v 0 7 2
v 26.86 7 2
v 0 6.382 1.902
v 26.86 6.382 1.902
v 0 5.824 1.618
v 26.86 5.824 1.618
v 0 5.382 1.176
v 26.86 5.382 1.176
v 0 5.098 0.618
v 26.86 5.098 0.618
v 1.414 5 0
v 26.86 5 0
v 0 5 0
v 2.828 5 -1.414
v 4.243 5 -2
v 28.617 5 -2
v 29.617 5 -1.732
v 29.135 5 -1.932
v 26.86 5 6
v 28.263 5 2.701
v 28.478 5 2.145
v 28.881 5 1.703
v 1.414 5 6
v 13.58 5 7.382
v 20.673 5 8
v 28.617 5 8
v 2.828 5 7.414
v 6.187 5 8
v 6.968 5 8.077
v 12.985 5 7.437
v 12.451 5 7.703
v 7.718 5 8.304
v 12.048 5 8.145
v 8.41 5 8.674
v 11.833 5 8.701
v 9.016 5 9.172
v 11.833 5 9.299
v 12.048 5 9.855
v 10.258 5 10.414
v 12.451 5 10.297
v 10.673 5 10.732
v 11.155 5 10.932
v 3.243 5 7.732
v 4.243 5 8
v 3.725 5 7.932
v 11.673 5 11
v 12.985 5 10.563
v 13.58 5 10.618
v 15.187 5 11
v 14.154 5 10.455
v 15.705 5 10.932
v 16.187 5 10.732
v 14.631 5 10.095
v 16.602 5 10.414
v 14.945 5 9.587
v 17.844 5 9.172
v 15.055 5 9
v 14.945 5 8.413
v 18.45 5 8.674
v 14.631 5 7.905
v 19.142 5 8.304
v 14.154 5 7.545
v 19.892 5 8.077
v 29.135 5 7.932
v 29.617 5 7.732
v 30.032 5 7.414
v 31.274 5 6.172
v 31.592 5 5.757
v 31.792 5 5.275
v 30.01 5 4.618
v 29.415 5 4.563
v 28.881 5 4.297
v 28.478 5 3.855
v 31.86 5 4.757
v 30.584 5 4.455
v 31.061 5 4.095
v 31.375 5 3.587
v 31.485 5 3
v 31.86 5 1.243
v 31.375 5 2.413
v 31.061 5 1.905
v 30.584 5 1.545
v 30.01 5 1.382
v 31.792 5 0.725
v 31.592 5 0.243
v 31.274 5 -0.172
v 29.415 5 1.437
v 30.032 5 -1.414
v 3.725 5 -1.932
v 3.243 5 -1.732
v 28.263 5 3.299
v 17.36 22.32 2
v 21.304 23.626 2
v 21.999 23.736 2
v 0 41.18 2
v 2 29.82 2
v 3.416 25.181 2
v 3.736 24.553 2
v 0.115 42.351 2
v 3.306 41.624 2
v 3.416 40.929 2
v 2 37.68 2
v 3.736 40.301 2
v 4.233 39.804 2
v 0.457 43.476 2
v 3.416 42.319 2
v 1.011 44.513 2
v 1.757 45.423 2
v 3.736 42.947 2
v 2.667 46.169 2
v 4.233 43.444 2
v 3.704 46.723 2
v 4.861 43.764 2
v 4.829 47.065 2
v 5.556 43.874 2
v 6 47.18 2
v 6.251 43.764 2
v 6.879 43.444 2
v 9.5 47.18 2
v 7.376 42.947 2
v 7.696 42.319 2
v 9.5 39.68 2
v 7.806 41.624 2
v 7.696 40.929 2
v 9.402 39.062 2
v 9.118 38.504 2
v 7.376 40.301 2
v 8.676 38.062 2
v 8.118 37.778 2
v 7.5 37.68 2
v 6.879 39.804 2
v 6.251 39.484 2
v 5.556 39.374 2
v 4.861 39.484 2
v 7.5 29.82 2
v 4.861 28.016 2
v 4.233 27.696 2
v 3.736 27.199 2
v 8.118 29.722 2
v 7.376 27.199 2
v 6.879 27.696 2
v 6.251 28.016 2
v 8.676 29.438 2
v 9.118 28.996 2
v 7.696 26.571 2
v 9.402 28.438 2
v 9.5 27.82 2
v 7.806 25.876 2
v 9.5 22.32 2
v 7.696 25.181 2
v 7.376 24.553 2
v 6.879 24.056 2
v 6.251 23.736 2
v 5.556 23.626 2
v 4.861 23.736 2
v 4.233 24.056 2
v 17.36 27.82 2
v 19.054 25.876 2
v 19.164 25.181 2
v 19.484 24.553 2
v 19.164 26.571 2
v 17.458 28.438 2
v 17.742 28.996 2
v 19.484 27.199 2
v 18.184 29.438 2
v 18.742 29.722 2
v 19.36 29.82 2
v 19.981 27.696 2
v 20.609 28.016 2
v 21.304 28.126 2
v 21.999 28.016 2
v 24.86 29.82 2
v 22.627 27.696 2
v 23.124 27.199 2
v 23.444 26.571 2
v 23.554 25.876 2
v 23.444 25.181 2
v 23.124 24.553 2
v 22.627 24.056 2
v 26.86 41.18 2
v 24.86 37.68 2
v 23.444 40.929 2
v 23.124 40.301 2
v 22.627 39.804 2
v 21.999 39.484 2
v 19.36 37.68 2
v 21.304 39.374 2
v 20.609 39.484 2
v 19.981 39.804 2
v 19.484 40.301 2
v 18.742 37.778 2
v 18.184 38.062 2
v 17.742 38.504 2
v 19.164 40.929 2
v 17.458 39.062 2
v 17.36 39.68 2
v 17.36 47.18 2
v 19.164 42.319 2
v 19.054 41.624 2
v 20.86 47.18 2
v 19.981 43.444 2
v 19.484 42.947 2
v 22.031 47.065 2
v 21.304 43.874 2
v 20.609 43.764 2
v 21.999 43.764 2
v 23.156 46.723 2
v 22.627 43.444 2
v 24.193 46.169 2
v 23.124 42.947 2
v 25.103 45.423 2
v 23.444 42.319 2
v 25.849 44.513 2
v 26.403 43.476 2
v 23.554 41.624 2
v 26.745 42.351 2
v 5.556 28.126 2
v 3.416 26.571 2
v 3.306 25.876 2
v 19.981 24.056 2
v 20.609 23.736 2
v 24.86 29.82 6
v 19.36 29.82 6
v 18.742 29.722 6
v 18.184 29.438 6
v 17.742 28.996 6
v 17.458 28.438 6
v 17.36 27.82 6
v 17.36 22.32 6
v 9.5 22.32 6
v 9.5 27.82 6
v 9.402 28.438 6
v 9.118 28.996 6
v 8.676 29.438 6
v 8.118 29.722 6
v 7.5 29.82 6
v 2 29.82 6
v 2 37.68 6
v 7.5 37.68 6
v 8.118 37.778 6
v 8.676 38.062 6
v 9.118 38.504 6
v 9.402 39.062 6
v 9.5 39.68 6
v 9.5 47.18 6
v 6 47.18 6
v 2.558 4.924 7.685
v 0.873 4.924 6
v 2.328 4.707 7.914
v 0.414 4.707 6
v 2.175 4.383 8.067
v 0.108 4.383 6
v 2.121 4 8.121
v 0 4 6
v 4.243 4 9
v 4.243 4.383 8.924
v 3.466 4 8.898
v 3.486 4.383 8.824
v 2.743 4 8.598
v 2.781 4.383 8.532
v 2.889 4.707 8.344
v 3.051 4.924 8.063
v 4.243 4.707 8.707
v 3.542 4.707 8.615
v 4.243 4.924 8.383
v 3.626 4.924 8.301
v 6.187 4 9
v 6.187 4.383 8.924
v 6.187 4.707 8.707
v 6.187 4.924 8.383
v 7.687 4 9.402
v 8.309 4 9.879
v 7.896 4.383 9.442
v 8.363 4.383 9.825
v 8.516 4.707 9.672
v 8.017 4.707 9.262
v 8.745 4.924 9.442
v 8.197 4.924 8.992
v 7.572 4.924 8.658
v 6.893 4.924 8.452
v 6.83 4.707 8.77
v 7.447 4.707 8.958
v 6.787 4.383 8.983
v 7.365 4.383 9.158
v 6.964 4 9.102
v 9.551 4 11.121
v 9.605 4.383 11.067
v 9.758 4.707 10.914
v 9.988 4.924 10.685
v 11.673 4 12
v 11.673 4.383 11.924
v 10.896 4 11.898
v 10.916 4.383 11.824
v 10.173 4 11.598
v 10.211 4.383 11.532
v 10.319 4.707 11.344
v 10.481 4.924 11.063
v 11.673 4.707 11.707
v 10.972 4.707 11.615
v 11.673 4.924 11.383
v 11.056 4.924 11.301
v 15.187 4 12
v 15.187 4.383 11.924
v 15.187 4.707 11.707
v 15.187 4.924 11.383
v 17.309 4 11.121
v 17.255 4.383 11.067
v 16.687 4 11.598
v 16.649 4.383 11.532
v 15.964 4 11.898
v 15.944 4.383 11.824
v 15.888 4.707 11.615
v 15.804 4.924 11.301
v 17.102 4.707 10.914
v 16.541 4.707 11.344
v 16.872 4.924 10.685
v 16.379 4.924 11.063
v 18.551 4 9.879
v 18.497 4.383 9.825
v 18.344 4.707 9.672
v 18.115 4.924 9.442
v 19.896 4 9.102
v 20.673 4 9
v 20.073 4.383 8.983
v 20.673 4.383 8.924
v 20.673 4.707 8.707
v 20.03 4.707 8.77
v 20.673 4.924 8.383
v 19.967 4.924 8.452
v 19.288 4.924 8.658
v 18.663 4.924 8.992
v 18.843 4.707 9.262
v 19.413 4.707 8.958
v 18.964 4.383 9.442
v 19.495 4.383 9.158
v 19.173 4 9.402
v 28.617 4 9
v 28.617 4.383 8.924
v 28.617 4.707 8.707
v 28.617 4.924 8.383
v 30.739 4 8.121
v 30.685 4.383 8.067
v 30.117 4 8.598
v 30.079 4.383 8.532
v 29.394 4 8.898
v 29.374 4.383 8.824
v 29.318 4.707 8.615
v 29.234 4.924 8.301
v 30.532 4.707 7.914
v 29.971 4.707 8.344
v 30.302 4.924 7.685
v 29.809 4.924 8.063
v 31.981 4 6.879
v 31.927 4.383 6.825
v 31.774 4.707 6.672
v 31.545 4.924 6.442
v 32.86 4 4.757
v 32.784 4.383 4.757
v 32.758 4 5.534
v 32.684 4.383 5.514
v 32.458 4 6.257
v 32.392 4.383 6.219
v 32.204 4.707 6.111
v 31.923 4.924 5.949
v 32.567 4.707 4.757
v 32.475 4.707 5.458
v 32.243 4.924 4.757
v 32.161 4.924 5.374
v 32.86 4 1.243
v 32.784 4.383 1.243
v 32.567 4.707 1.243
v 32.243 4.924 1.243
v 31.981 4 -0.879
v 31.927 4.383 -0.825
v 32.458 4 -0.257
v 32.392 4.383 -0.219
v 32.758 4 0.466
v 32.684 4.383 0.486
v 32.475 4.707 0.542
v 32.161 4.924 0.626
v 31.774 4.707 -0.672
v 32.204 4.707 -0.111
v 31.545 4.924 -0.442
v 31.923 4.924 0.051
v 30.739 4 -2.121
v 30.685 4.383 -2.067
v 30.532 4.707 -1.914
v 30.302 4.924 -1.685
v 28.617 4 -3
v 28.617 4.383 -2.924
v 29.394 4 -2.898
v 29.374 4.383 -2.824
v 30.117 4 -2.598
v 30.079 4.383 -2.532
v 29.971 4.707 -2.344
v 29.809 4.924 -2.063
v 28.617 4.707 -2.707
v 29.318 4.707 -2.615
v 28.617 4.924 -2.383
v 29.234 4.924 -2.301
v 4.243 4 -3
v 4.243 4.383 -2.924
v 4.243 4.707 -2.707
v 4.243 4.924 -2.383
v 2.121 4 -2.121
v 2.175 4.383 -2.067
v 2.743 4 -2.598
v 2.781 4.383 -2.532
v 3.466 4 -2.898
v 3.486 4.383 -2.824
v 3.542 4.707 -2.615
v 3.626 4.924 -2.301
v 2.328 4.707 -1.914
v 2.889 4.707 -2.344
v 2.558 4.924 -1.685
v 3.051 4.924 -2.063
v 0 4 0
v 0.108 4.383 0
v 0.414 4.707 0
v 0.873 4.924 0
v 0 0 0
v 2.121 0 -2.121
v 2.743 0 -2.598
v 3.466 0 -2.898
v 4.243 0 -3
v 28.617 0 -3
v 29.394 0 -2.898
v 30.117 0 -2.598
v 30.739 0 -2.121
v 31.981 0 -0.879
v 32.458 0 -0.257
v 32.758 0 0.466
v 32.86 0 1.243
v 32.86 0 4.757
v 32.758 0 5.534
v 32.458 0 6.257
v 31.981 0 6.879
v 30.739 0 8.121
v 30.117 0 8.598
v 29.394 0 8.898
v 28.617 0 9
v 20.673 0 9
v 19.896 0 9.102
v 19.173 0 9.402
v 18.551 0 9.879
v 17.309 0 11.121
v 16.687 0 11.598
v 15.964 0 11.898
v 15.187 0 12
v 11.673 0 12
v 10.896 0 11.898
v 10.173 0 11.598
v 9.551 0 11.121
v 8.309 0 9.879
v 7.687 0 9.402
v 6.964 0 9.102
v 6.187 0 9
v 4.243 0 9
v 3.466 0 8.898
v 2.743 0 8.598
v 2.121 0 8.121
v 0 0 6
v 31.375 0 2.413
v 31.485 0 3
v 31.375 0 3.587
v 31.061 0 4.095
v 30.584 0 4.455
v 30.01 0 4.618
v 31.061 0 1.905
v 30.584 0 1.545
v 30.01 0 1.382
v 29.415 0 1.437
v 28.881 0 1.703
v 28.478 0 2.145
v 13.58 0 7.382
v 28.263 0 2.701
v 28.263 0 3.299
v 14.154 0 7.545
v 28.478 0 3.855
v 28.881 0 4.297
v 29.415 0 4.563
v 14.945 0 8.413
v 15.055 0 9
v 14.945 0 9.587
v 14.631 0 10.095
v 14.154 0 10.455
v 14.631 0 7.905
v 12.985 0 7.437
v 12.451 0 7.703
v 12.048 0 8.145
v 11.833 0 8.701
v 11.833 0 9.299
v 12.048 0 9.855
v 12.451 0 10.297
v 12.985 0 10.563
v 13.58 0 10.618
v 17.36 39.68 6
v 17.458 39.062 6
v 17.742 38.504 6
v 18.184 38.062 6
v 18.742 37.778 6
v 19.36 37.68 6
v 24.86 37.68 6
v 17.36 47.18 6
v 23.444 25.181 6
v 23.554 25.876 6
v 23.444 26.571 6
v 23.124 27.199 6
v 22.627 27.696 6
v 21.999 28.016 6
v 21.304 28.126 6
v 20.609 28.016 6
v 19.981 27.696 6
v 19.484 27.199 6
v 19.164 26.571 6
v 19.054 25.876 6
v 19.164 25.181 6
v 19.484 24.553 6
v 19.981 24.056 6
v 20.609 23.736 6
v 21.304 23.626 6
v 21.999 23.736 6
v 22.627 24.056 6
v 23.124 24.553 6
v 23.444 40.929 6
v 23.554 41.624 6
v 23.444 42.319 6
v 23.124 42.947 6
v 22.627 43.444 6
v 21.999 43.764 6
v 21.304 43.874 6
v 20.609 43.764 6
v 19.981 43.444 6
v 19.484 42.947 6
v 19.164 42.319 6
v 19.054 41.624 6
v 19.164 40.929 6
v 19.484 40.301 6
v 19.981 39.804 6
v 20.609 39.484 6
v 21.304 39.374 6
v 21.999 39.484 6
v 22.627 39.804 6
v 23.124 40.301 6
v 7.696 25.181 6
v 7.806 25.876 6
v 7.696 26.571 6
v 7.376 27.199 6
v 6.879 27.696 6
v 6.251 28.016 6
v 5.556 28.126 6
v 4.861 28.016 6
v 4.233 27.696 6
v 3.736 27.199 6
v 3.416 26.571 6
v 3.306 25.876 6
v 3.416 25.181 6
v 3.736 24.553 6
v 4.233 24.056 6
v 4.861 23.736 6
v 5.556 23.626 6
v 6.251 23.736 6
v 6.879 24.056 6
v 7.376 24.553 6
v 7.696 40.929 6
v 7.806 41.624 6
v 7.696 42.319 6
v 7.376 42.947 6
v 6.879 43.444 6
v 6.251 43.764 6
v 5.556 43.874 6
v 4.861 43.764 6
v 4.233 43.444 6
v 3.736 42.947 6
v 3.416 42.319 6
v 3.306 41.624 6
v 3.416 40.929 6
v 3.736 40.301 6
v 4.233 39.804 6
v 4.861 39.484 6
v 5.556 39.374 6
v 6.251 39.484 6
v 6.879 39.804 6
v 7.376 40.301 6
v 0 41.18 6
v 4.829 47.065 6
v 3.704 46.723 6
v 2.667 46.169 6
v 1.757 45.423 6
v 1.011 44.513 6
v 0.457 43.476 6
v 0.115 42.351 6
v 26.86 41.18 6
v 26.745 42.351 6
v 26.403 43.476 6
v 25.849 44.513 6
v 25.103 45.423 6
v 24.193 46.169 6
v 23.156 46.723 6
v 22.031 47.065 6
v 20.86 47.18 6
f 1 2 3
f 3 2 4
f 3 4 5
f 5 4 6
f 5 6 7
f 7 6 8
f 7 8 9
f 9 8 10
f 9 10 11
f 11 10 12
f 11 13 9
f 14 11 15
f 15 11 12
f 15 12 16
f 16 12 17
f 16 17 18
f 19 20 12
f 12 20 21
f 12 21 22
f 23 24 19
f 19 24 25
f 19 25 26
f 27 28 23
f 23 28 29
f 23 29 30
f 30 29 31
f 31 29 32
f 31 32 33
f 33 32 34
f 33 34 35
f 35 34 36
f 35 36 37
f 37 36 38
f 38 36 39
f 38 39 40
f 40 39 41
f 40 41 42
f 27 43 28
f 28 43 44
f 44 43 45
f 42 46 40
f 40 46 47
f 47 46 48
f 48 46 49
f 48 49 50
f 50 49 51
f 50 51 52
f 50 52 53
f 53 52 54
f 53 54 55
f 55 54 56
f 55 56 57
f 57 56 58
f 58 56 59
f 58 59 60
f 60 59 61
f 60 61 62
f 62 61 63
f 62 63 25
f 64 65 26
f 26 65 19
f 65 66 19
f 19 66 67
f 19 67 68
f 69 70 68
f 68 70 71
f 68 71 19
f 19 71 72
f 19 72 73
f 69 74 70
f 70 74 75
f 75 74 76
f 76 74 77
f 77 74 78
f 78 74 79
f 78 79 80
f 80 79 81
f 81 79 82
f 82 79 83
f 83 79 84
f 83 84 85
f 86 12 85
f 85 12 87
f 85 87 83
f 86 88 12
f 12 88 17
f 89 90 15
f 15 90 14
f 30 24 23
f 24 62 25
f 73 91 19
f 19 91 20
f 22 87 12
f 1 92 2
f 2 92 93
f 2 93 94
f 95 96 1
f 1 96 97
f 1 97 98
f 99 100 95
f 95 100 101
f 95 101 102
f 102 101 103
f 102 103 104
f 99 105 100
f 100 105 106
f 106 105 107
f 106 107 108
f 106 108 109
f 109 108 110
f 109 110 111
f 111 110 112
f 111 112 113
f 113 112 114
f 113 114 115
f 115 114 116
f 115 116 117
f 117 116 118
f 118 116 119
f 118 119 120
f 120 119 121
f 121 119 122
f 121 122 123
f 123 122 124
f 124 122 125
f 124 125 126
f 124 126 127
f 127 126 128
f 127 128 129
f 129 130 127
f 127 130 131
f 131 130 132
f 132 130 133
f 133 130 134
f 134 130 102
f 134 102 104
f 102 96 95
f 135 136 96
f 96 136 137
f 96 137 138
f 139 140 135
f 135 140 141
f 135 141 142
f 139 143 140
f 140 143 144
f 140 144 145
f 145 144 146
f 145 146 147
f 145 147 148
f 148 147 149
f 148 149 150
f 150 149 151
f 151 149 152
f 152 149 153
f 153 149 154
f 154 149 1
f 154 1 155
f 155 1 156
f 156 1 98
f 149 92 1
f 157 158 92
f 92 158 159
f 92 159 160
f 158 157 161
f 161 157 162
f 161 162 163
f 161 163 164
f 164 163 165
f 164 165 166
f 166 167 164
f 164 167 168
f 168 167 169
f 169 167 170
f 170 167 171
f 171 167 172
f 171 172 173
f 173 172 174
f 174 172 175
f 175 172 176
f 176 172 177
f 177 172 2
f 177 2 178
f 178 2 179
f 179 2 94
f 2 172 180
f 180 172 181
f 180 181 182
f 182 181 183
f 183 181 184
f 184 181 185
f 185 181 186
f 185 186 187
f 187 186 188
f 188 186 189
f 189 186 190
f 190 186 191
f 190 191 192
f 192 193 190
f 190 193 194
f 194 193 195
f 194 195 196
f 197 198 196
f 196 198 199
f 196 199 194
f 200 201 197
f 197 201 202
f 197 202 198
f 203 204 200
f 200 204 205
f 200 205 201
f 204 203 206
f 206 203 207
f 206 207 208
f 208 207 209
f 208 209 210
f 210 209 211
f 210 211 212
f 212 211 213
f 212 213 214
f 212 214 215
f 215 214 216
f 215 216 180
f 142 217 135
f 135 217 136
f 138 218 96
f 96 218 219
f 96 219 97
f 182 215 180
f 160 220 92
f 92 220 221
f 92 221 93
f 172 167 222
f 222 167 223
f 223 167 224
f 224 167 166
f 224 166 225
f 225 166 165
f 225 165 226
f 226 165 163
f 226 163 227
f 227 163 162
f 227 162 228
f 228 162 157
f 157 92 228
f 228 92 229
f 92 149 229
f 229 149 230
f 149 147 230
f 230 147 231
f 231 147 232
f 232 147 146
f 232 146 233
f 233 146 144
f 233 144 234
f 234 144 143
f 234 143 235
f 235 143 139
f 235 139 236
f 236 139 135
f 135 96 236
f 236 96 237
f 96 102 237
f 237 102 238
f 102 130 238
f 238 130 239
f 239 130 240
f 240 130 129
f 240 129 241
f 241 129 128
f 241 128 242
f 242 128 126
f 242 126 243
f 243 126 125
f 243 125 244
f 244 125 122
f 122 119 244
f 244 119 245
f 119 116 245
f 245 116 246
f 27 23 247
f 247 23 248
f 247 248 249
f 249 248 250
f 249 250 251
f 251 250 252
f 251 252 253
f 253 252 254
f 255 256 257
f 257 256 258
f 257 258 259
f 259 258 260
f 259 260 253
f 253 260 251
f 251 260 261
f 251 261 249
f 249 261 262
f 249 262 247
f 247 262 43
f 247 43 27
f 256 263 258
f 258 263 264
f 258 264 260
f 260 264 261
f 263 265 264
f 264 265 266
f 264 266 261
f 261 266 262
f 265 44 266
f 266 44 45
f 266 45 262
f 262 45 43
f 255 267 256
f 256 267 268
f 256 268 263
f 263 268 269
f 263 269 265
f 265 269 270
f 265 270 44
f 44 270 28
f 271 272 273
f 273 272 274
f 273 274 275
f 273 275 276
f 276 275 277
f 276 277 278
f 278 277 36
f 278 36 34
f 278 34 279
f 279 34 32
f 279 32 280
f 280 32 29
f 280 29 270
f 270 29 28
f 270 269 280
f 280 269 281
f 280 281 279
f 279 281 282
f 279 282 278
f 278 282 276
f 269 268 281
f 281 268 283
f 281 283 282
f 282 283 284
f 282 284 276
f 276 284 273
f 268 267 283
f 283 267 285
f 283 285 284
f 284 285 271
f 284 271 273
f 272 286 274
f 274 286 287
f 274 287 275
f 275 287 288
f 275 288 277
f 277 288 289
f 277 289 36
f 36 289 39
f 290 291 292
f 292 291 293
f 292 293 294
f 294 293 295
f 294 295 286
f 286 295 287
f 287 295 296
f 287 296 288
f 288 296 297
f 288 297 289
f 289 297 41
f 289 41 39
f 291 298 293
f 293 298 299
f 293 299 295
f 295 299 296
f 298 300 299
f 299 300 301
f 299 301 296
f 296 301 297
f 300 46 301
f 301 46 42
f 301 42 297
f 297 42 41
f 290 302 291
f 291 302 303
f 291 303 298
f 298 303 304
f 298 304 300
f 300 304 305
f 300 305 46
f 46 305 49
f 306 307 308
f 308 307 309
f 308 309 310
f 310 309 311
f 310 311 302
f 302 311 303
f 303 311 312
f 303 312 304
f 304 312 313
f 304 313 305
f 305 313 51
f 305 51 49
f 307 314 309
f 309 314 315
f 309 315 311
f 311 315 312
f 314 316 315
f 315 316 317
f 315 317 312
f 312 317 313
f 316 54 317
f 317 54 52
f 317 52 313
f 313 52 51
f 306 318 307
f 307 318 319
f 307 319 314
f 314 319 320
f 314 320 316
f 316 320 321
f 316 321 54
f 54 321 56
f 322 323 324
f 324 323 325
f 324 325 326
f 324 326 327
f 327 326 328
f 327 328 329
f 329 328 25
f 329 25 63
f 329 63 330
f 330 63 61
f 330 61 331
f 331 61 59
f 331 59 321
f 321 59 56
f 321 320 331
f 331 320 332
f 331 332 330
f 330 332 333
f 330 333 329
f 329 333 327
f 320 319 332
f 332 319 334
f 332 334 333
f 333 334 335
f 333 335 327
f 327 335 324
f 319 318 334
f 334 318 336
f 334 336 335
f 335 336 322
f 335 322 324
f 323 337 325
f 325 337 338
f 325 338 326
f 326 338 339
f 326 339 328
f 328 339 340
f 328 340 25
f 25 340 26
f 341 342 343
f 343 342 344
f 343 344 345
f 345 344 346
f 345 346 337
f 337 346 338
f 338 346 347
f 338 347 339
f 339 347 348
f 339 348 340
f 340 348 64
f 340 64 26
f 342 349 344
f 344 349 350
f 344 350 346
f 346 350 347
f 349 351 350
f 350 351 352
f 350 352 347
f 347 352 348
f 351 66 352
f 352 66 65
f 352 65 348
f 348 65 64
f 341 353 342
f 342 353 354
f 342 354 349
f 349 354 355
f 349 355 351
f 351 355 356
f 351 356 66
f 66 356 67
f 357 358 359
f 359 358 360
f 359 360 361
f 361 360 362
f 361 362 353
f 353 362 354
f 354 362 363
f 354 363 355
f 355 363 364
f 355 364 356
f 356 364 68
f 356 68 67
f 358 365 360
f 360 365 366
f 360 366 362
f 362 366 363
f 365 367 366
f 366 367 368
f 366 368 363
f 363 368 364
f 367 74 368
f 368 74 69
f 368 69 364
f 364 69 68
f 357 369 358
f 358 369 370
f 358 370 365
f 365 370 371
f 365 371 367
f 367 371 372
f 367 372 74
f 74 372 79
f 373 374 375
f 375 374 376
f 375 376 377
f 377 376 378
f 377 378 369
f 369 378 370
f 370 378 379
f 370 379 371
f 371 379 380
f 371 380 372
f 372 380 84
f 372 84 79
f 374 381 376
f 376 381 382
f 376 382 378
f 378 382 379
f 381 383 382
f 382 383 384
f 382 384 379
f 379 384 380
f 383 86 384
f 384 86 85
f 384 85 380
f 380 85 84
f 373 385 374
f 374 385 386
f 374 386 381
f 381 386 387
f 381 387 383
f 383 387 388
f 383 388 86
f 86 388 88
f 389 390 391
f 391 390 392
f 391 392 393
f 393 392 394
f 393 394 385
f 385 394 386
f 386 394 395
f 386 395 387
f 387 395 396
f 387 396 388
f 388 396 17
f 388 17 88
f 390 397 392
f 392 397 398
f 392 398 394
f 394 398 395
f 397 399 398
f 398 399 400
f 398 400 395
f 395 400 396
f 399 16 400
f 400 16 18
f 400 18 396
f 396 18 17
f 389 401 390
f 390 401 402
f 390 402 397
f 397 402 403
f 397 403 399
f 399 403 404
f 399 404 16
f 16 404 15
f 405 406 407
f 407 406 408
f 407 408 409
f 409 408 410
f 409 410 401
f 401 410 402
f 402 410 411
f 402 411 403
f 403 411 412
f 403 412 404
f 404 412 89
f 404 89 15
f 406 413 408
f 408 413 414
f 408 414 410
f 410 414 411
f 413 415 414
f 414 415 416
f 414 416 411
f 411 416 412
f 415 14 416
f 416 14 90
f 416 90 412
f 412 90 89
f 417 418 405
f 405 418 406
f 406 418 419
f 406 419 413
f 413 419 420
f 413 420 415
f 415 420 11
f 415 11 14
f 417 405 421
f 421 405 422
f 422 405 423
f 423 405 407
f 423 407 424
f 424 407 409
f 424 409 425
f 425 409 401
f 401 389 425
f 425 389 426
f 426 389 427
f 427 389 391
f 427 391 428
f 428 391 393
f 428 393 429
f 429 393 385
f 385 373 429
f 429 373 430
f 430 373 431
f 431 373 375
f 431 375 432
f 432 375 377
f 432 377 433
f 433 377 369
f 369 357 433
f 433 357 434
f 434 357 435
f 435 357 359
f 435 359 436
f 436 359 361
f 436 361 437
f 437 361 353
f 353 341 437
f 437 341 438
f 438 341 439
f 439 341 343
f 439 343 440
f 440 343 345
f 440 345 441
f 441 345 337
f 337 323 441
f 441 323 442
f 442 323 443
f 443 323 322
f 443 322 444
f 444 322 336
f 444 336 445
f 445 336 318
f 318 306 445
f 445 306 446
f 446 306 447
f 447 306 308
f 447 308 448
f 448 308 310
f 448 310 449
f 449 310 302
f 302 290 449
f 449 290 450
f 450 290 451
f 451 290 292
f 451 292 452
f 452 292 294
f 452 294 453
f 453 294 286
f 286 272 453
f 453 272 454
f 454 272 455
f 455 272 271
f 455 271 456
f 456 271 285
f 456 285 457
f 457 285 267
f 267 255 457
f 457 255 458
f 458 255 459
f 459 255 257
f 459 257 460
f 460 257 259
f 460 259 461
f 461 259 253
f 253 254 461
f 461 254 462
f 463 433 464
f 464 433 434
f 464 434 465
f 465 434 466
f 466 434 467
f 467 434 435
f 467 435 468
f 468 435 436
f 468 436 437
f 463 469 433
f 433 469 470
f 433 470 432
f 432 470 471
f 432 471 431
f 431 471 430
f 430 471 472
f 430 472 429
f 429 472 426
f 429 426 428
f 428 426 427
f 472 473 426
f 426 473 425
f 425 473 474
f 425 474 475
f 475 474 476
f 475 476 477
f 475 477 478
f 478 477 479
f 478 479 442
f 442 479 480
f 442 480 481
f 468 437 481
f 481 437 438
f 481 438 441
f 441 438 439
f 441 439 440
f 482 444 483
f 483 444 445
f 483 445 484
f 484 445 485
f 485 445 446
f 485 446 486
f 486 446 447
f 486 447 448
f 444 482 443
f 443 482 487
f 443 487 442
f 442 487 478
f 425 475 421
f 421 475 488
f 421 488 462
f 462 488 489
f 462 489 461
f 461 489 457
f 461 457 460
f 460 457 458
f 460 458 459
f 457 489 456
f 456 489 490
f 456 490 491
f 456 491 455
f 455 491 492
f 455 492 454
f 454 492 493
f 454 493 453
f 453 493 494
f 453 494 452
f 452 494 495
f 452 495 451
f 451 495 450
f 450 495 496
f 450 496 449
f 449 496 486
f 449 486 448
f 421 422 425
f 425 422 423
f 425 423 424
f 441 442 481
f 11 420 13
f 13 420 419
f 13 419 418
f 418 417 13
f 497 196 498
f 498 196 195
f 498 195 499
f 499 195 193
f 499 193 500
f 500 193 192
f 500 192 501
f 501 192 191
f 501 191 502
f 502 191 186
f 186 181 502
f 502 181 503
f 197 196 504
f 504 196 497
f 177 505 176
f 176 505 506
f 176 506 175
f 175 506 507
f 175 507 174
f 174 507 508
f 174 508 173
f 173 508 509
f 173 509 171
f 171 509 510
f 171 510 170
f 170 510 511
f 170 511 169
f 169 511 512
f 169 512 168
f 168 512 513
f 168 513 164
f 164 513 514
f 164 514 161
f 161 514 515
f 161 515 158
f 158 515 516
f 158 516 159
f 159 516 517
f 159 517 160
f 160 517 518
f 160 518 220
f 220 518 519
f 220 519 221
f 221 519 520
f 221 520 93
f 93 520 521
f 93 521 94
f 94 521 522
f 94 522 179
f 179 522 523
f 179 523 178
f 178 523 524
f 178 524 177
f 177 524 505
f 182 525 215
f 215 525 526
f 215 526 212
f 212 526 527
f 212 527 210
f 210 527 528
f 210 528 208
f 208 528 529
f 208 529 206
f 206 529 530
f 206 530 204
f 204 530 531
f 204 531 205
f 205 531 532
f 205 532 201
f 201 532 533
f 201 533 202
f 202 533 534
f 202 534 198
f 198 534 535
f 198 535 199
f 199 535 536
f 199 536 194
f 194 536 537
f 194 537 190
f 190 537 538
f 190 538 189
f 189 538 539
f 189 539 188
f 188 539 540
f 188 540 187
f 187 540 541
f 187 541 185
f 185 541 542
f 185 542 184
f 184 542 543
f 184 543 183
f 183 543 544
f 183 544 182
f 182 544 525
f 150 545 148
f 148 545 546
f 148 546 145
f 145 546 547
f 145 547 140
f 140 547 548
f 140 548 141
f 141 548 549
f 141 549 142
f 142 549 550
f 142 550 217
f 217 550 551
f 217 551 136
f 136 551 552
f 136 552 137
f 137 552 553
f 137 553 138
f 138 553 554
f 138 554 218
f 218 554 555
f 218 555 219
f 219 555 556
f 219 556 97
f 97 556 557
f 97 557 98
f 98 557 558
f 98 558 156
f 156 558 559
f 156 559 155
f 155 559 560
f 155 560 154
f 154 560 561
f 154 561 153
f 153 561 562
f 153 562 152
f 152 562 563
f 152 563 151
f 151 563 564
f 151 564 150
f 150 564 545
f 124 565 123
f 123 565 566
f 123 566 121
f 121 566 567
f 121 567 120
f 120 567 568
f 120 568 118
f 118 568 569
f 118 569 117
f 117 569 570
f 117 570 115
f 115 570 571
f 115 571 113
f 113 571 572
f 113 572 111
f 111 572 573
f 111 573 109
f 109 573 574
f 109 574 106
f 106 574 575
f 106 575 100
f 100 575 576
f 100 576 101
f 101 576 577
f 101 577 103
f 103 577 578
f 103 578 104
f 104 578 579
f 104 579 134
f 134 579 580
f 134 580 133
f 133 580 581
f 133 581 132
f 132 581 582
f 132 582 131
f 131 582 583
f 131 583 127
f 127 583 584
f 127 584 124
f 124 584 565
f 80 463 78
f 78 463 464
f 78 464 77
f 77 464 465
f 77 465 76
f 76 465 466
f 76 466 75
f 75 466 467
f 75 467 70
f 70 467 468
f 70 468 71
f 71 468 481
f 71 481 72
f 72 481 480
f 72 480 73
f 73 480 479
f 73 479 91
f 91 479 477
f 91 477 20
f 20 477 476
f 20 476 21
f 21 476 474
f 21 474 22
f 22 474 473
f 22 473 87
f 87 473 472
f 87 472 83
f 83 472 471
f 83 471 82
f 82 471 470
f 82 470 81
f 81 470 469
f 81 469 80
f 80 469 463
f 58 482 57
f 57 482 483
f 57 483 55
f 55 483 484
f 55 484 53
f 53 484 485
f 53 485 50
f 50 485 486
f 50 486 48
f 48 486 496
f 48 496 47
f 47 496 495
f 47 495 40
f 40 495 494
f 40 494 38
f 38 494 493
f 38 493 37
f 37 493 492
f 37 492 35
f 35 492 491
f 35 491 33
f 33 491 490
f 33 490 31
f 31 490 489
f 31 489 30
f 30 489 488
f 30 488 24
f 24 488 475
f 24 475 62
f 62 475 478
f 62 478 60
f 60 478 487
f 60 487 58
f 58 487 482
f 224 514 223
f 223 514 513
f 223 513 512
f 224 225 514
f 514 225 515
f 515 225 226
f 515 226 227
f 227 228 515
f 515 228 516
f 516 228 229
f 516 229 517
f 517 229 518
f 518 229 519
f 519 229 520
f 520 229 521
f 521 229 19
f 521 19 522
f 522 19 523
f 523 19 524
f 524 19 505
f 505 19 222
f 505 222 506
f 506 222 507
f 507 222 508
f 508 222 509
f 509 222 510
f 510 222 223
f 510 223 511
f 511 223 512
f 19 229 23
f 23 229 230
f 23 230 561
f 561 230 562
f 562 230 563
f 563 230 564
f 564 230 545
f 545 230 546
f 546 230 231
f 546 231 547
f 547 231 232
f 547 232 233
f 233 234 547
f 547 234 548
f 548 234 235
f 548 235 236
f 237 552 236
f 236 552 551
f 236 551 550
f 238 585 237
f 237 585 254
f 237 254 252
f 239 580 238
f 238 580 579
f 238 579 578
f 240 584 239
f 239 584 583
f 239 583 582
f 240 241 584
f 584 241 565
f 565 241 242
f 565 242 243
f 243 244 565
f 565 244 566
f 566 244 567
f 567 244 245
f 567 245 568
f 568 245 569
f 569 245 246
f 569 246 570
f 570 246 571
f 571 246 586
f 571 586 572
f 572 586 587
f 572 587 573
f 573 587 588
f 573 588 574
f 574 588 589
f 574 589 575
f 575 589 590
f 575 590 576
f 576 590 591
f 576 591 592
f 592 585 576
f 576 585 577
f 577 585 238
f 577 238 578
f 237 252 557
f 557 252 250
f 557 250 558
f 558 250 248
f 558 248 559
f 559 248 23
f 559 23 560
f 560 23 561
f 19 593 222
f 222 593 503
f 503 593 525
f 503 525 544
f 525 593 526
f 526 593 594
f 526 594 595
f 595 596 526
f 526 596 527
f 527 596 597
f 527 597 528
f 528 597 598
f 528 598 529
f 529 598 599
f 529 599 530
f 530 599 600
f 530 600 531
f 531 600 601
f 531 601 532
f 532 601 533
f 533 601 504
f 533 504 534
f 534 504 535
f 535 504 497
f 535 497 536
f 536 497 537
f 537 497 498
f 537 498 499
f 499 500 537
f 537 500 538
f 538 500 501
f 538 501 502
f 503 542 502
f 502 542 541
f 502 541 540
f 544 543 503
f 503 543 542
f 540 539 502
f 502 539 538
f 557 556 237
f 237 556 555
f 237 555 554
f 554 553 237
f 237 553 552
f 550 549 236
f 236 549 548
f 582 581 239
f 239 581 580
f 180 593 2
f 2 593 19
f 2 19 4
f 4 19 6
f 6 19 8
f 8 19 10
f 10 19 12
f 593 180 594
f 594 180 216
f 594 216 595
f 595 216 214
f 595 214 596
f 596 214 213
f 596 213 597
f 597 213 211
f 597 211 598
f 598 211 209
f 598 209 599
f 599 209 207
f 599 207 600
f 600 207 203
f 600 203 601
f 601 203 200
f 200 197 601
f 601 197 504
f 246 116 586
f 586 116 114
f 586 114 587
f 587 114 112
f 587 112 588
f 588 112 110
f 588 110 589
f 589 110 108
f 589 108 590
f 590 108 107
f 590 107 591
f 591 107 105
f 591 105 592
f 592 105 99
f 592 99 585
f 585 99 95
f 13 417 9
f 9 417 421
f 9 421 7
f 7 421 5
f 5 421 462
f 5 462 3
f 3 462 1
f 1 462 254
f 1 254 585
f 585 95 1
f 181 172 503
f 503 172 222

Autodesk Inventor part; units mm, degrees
ref_plane "YZ Plane" through (0, 0, 0) normal (1, 0, 0) x (0, 1, 0)
ref_plane "XZ Plane" through (0, 0, 0) normal (0, 1, 0) x (-1, 0, 0)
ref_plane "XY Plane" through (0, 0, 0) normal (0, 0, 1) x (1, 0, 0)
sketch "Sketch1" plane through (0, 0, 0) normal (0, 0, 1) x (1, 0, 0)
  line L0 (0, 0) -> (26.86, 0)
  line L1 (26.86, 0) -> (26.86, 47.18)
  line L2 (26.86, 47.18) -> (0, 47.18)
  line L3 (0, 47.18) -> (0, 0)
  line L4 (2, 38.68) -> (8.5, 38.68)
  line L5 (8.5, 38.68) -> (8.5, 45.18)
  line L6 (8.5, 45.18) -> (18.36, 45.18)
  line L7 (18.36, 45.18) -> (18.36, 38.68)
  line L8 (18.36, 38.68) -> (24.86, 38.68)
  line L9 (24.86, 38.68) -> (24.86, 28.82)
  line L10 (24.86, 28.82) -> (18.36, 28.82)
  line L11 (18.36, 28.82) -> (18.36, 22.32)
  line L12 (18.36, 22.32) -> (8.5, 22.32)
  line L13 (8.5, 22.32) -> (8.5, 28.82)
  line L14 (2, 28.82) -> (2, 38.68)
  line L15 (2, 28.82) -> (8.5, 28.82)
  line L16 (2, 33.75) -> (24.86, 33.75) construction
  line L17 (13.43, 47.18) -> (13.43, 0) construction
  circle A0 centre (5.556, 41.624) radius 2.25
  circle A1 centre (5.556, 25.876) radius 2.25
  circle A2 centre (21.304, 25.876) radius 2.25
  circle A3 centre (21.304, 41.624) radius 2.25
  line L18 (8.5, 45.18) -> (8.5, 47.18)
  line L19 (18.36, 45.18) -> (18.36, 47.18)
  line L20 (5.556, 41.624) -> (21.304, 41.624)
  line L21 (21.304, 41.624) -> (21.304, 25.876)
  line L22 (21.304, 25.876) -> (5.556, 25.876)
  line L23 (5.556, 25.876) -> (5.556, 41.624)
  line L24 (26.86, 47.18) -> (17.36, 47.18)
  line L25 (17.36, 47.18) -> (17.36, 37.68)
  line L26 (17.36, 37.68) -> (26.86, 37.68)
  line L27 (26.86, 37.68) -> (26.86, 47.18)
  line L28 (0, 47.18) -> (9.5, 47.18)
  line L29 (9.5, 47.18) -> (9.5, 37.68)
  line L30 (9.5, 37.68) -> (0, 37.68)
  line L31 (0, 37.68) -> (0, 47.18)
  line L32 (0, 20.8011) -> (9.5, 20.8011)
  line L33 (9.5, 20.8011) -> (9.5, 29.82)
  line L34 (9.5, 29.82) -> (0, 29.82)
  line L35 (0, 29.82) -> (0, 20.8011)
  line L36 (26.86, 20.8011) -> (17.36, 20.8011)
  line L37 (17.36, 20.8011) -> (17.36, 29.82)
  line L38 (17.36, 29.82) -> (26.86, 29.82)
  line L39 (26.86, 29.82) -> (26.86, 20.8011)
  point P0 (13.43, 33.75)
  point P1 (5.25, 38.68)
  point P2 (9.5, 22.32)
  point P3 (2, 29.82)
  point P4 (5.556, 28.82)
  point P5 (5.556, 28.126)
  point P6 (7.806, 25.876)
  point P7 (8.5, 25.876)
  point P8 (17.36, 22.32)
  point P9 (18.36, 25.876)
  point P10 (19.054, 25.876)
  point P11 (21.304, 28.126)
  point P12 (21.304, 28.82)
  point P13 (24.86, 29.82)
  point P14 (24.86, 37.68)
  point P15 (21.304, 38.68)
  point P16 (21.304, 39.374)
  point P17 (19.054, 41.624)
  point P18 (18.36, 41.624)
  point P19 (8.5, 41.624)
  point P20 (7.806, 41.624)
  point P21 (5.556, 39.374)
  point P22 (5.556, 38.68)
  point P23 (2, 37.68)
  dimension "d0" = 47.18
  dimension "d1" = 26.86
  dimension "d2" = 6.5
  dimension "d3" = 22.86
  dimension "d4" = 2
  dimension "d5" = 4.5
  dimension "d6" = 2.944
  dimension "d7" = 2.944
  dimension "d19" = 15.748
  dimension "d20" = 15.748
  dimension "d21" = 1
  dimension "d22" = 1
  dimension "d23" = 1
  dimension "d24" = 1
extrude "Extrusion1" add sketch "Sketch1" along normal blind 6 contours L3 L32 L33 L12 L37 L36 L1 L0 | L3 L34 L14 L15 L23 A1 L22 L13 L12 L33 L32 | L36 L37 L12 L11 L22 A2 L21 L10 L9 L38 L1 | L3 L30 L14 L34 | L38 L9 L26 L1 | L3 L2 L18 L5 L20 A0 L23 L4 L14 L30 | L26 L9 L8 L21 A3 L20 L7 L19 L2 L1 | L15 L13 L22 A1 L23 | L21 A2 L22 L11 L10 | L23 A0 L20 L5 L4 | L8 L7 L20 A3 L21
fillet "Fillet1" radius 2 4 edges at (8.5, 28.82, 3) (18.36, 28.82, 3) (8.5, 38.68, 3) (18.36, 38.68, 3)
fillet "Fillet2" radius 6 2 edges at (0, 47.18, 3) (26.86, 47.18, 3)
sketch "Sketch2" plane through (0, 0, 6) normal (0, 0, 1) x (1, 0, 0)
  line L0 (8.5, 45.18) -> (18.36, 45.18)
  line L1 (24.86, 38.68) -> (24.86, 28.82) projected
  line L2 (18.36, 22.32) -> (8.5, 22.32) projected
  line L3 (2, 28.82) -> (2, 38.68) projected
  circle A0 centre (13.43, 33.75) radius 11.43
  point P0 (0, 0)
sketch "Sketch3" plane through (0, 0, 0) normal (0, -1, 0) x (1, 0, 0)
  line L0 (0, 0) -> (26.86, 0) projected
  line L1 (26.86, 0) -> (26.86, 6) projected
  line L2 (0, 6) -> (26.86, 6) projected
  line L3 (0, 0) -> (0, 6) construction
  line L4 (32.86, 6) -> (32.86, 0) construction
  line L5 (32.86, 0) -> (-6, 0) construction
  line L6 (0, 6) -> (26.86, 6) construction
  line L7 (0, 0) -> (26.86, 0) construction
  line L8 (13.43, 6) -> (13.43, 0) construction
  line L9 (13.43, 6) -> (13.43, 0) construction
  circle A0 centre (29.86, 3) radius 1.625
  line L10 (26.86, 6) -> (32.86, 0) construction
  circle A1 centre (13.43, 9) radius 1.625
  line L11 (29.86, -3) -> (32.86, 0) construction
  line L12 (29.86, 9) -> (32.86, 6) construction
  line L13 (0, 0) -> (0, 6) construction
  line L14 (0, 6) -> (0, 0) construction
  line L15 (26.86, 0) -> (26.86, 6) construction
  line L16 (26.86, 6) -> (26.86, 0) construction
  line L17 (0, 0) -> (0, 6) construction
  line L18 (0, 6) -> (3, 9) construction
  line L19 (3, 9) -> (7.43, 9)
  line L20 (7.43, 9) -> (10.43, 12)
  line L21 (10.43, 12) -> (16.43, 12)
  line L22 (16.43, 12) -> (19.43, 9)
  line L23 (19.43, 9) -> (29.86, 9)
  line L24 (26.86, 6) -> (26.86, 0) construction
  line L25 (13.43, 12) -> (13.43, 6) construction
  line L26 (7.43, 9) -> (19.43, 9) construction
  line L27 (18.36, 6) -> (8.5, 6) construction
  line L28 (0, 0) -> (3, -3) construction
  line L29 (3, -3) -> (29.86, -3)
  line L30 (0, 3) -> (32.86, 3) construction
  circle A2 centre (13.43, -3) radius 1.625 construction
  line L31 (7.43, -3) -> (10.43, -6) construction
  line L32 (10.43, -6) -> (16.43, -6) construction
  line L33 (16.43, -6) -> (19.43, -3) construction
  line L34 (0, 0) -> (3, -3)
  line L35 (3, -3) -> (7.43, -3)
  line L36 (19.43, -3) -> (29.86, -3)
  line L37 (29.86, -3) -> (32.86, 0)
  line L38 (32.86, 0) -> (32.86, 6)
  line L39 (32.86, 6) -> (29.86, 9)
  line L40 (29.86, 9) -> (3, 9) construction
  line L41 (3, 9) -> (0, 6)
  point P0 (13.43, 3)
  point P1 (26.86, 3)
  dimension "d12" = 6
  dimension "d13" = 3.25
  dimension "d28" = 3
  dimension "d29" = 6
  dimension "d30" = 6
  dimension "d31" = 135
  dimension "d32" = 3.25
  dimension "d33" = 3
  dimension "d36" = 6
extrude "Extrusion2" add sketch "Sketch3" against normal blind 5
extrude "Extrusion3" add sketch "Sketch1" along normal blind 6 contours L34 L23 L15 L14 | L12 L13 L22 L33 | L9 L10 L21 L38 | L37 L22 L11 L12 | L14 L4 L23 L30 | L34 L33 L22 L13 L15 L23 | L26 L21 L8 L9 | L21 L10 L11 L22 L37 L38 | L2 L29 L6 L18 | L23 L4 L5 L20 L29 L30 | L15 L13 L22 A1 L23 | L19 L6 L25 L2 | L26 L25 L20 L7 L8 L21 | L21 A2 L22 L11 L10 | L6 L29 L20 L5 | L23 A0 L20 L5 L4 | L7 L20 L25 L6 | L8 L7 L20 A3 L21
fillet "Fillet4" radius 2 4 edges at (9.5, 37.68, 3) (17.36, 37.68, 3) (9.5, 29.82, 3) (17.36, 29.82, 3)
fillet "Fillet9" radius 3 10 edges at (3, 2.5, 9) (7.43, 2.5, 9) (10.43, 2.5, 12) (16.43, 2.5, 12) (19.43, 2.5, 9) (29.86, 2.5, 9) (32.86, 2.5, 6) (32.86, 2.5, 0) (29.86, 2.5, -3) (3, 2.5, -3)
fillet "Fillet10" radius 1 21 edges at (3.0946, 5, -2.7716) (1.0607, 5, -1.0607) (29.7654, 5, -2.7716) (31.36, 5, -1.5) (32.6316, 5, 0.0946) (32.86, 5, 3) (32.6316, 5, 5.9054) (31.36, 5, 7.5) (29.7654, 5, 8.7716) (24.645, 5, 9) (19.5246, 5, 9.2284) (17.93, 5, 10.5) (16.3354, 5, 11.7716) (13.43, 5, 12) (10.5246, 5, 11.7716) (8.93, 5, 10.5) (7.3354, 5, 9.2284) (5.215, 5, 9) (3.0946, 5, 8.7716) (1.0607, 5, 7.0607) (16.43, 5, -3)
sketch "Sketch4" plane through (0, 0, 0) normal (0, 0, -1) x (-1, 0, 0)
  line L0 (-33.4061, 50.4352) -> (8.6296, 50.4352)
  line L1 (8.6296, 50.4352) -> (8.6296, 5)
  line L2 (8.6296, 5) -> (-33.4061, 5)
  line L3 (-33.4061, 5) -> (-33.4061, 50.4352)
  line L4 (-4.2426, 5) -> (-28.6174, 5) projected
  point P0 (0, 0)
extrude "Extrusion4" cut sketch "Sketch4" against normal blind 2
fillet "Fillet11" radius 2 1 edges at (13.43, 5, 2)
equation "\"d29\" = 2 * d28"
equation "\"d30\" = d29"
equation "\"d32\" = d13"
properties part number "as5600mount_2"
